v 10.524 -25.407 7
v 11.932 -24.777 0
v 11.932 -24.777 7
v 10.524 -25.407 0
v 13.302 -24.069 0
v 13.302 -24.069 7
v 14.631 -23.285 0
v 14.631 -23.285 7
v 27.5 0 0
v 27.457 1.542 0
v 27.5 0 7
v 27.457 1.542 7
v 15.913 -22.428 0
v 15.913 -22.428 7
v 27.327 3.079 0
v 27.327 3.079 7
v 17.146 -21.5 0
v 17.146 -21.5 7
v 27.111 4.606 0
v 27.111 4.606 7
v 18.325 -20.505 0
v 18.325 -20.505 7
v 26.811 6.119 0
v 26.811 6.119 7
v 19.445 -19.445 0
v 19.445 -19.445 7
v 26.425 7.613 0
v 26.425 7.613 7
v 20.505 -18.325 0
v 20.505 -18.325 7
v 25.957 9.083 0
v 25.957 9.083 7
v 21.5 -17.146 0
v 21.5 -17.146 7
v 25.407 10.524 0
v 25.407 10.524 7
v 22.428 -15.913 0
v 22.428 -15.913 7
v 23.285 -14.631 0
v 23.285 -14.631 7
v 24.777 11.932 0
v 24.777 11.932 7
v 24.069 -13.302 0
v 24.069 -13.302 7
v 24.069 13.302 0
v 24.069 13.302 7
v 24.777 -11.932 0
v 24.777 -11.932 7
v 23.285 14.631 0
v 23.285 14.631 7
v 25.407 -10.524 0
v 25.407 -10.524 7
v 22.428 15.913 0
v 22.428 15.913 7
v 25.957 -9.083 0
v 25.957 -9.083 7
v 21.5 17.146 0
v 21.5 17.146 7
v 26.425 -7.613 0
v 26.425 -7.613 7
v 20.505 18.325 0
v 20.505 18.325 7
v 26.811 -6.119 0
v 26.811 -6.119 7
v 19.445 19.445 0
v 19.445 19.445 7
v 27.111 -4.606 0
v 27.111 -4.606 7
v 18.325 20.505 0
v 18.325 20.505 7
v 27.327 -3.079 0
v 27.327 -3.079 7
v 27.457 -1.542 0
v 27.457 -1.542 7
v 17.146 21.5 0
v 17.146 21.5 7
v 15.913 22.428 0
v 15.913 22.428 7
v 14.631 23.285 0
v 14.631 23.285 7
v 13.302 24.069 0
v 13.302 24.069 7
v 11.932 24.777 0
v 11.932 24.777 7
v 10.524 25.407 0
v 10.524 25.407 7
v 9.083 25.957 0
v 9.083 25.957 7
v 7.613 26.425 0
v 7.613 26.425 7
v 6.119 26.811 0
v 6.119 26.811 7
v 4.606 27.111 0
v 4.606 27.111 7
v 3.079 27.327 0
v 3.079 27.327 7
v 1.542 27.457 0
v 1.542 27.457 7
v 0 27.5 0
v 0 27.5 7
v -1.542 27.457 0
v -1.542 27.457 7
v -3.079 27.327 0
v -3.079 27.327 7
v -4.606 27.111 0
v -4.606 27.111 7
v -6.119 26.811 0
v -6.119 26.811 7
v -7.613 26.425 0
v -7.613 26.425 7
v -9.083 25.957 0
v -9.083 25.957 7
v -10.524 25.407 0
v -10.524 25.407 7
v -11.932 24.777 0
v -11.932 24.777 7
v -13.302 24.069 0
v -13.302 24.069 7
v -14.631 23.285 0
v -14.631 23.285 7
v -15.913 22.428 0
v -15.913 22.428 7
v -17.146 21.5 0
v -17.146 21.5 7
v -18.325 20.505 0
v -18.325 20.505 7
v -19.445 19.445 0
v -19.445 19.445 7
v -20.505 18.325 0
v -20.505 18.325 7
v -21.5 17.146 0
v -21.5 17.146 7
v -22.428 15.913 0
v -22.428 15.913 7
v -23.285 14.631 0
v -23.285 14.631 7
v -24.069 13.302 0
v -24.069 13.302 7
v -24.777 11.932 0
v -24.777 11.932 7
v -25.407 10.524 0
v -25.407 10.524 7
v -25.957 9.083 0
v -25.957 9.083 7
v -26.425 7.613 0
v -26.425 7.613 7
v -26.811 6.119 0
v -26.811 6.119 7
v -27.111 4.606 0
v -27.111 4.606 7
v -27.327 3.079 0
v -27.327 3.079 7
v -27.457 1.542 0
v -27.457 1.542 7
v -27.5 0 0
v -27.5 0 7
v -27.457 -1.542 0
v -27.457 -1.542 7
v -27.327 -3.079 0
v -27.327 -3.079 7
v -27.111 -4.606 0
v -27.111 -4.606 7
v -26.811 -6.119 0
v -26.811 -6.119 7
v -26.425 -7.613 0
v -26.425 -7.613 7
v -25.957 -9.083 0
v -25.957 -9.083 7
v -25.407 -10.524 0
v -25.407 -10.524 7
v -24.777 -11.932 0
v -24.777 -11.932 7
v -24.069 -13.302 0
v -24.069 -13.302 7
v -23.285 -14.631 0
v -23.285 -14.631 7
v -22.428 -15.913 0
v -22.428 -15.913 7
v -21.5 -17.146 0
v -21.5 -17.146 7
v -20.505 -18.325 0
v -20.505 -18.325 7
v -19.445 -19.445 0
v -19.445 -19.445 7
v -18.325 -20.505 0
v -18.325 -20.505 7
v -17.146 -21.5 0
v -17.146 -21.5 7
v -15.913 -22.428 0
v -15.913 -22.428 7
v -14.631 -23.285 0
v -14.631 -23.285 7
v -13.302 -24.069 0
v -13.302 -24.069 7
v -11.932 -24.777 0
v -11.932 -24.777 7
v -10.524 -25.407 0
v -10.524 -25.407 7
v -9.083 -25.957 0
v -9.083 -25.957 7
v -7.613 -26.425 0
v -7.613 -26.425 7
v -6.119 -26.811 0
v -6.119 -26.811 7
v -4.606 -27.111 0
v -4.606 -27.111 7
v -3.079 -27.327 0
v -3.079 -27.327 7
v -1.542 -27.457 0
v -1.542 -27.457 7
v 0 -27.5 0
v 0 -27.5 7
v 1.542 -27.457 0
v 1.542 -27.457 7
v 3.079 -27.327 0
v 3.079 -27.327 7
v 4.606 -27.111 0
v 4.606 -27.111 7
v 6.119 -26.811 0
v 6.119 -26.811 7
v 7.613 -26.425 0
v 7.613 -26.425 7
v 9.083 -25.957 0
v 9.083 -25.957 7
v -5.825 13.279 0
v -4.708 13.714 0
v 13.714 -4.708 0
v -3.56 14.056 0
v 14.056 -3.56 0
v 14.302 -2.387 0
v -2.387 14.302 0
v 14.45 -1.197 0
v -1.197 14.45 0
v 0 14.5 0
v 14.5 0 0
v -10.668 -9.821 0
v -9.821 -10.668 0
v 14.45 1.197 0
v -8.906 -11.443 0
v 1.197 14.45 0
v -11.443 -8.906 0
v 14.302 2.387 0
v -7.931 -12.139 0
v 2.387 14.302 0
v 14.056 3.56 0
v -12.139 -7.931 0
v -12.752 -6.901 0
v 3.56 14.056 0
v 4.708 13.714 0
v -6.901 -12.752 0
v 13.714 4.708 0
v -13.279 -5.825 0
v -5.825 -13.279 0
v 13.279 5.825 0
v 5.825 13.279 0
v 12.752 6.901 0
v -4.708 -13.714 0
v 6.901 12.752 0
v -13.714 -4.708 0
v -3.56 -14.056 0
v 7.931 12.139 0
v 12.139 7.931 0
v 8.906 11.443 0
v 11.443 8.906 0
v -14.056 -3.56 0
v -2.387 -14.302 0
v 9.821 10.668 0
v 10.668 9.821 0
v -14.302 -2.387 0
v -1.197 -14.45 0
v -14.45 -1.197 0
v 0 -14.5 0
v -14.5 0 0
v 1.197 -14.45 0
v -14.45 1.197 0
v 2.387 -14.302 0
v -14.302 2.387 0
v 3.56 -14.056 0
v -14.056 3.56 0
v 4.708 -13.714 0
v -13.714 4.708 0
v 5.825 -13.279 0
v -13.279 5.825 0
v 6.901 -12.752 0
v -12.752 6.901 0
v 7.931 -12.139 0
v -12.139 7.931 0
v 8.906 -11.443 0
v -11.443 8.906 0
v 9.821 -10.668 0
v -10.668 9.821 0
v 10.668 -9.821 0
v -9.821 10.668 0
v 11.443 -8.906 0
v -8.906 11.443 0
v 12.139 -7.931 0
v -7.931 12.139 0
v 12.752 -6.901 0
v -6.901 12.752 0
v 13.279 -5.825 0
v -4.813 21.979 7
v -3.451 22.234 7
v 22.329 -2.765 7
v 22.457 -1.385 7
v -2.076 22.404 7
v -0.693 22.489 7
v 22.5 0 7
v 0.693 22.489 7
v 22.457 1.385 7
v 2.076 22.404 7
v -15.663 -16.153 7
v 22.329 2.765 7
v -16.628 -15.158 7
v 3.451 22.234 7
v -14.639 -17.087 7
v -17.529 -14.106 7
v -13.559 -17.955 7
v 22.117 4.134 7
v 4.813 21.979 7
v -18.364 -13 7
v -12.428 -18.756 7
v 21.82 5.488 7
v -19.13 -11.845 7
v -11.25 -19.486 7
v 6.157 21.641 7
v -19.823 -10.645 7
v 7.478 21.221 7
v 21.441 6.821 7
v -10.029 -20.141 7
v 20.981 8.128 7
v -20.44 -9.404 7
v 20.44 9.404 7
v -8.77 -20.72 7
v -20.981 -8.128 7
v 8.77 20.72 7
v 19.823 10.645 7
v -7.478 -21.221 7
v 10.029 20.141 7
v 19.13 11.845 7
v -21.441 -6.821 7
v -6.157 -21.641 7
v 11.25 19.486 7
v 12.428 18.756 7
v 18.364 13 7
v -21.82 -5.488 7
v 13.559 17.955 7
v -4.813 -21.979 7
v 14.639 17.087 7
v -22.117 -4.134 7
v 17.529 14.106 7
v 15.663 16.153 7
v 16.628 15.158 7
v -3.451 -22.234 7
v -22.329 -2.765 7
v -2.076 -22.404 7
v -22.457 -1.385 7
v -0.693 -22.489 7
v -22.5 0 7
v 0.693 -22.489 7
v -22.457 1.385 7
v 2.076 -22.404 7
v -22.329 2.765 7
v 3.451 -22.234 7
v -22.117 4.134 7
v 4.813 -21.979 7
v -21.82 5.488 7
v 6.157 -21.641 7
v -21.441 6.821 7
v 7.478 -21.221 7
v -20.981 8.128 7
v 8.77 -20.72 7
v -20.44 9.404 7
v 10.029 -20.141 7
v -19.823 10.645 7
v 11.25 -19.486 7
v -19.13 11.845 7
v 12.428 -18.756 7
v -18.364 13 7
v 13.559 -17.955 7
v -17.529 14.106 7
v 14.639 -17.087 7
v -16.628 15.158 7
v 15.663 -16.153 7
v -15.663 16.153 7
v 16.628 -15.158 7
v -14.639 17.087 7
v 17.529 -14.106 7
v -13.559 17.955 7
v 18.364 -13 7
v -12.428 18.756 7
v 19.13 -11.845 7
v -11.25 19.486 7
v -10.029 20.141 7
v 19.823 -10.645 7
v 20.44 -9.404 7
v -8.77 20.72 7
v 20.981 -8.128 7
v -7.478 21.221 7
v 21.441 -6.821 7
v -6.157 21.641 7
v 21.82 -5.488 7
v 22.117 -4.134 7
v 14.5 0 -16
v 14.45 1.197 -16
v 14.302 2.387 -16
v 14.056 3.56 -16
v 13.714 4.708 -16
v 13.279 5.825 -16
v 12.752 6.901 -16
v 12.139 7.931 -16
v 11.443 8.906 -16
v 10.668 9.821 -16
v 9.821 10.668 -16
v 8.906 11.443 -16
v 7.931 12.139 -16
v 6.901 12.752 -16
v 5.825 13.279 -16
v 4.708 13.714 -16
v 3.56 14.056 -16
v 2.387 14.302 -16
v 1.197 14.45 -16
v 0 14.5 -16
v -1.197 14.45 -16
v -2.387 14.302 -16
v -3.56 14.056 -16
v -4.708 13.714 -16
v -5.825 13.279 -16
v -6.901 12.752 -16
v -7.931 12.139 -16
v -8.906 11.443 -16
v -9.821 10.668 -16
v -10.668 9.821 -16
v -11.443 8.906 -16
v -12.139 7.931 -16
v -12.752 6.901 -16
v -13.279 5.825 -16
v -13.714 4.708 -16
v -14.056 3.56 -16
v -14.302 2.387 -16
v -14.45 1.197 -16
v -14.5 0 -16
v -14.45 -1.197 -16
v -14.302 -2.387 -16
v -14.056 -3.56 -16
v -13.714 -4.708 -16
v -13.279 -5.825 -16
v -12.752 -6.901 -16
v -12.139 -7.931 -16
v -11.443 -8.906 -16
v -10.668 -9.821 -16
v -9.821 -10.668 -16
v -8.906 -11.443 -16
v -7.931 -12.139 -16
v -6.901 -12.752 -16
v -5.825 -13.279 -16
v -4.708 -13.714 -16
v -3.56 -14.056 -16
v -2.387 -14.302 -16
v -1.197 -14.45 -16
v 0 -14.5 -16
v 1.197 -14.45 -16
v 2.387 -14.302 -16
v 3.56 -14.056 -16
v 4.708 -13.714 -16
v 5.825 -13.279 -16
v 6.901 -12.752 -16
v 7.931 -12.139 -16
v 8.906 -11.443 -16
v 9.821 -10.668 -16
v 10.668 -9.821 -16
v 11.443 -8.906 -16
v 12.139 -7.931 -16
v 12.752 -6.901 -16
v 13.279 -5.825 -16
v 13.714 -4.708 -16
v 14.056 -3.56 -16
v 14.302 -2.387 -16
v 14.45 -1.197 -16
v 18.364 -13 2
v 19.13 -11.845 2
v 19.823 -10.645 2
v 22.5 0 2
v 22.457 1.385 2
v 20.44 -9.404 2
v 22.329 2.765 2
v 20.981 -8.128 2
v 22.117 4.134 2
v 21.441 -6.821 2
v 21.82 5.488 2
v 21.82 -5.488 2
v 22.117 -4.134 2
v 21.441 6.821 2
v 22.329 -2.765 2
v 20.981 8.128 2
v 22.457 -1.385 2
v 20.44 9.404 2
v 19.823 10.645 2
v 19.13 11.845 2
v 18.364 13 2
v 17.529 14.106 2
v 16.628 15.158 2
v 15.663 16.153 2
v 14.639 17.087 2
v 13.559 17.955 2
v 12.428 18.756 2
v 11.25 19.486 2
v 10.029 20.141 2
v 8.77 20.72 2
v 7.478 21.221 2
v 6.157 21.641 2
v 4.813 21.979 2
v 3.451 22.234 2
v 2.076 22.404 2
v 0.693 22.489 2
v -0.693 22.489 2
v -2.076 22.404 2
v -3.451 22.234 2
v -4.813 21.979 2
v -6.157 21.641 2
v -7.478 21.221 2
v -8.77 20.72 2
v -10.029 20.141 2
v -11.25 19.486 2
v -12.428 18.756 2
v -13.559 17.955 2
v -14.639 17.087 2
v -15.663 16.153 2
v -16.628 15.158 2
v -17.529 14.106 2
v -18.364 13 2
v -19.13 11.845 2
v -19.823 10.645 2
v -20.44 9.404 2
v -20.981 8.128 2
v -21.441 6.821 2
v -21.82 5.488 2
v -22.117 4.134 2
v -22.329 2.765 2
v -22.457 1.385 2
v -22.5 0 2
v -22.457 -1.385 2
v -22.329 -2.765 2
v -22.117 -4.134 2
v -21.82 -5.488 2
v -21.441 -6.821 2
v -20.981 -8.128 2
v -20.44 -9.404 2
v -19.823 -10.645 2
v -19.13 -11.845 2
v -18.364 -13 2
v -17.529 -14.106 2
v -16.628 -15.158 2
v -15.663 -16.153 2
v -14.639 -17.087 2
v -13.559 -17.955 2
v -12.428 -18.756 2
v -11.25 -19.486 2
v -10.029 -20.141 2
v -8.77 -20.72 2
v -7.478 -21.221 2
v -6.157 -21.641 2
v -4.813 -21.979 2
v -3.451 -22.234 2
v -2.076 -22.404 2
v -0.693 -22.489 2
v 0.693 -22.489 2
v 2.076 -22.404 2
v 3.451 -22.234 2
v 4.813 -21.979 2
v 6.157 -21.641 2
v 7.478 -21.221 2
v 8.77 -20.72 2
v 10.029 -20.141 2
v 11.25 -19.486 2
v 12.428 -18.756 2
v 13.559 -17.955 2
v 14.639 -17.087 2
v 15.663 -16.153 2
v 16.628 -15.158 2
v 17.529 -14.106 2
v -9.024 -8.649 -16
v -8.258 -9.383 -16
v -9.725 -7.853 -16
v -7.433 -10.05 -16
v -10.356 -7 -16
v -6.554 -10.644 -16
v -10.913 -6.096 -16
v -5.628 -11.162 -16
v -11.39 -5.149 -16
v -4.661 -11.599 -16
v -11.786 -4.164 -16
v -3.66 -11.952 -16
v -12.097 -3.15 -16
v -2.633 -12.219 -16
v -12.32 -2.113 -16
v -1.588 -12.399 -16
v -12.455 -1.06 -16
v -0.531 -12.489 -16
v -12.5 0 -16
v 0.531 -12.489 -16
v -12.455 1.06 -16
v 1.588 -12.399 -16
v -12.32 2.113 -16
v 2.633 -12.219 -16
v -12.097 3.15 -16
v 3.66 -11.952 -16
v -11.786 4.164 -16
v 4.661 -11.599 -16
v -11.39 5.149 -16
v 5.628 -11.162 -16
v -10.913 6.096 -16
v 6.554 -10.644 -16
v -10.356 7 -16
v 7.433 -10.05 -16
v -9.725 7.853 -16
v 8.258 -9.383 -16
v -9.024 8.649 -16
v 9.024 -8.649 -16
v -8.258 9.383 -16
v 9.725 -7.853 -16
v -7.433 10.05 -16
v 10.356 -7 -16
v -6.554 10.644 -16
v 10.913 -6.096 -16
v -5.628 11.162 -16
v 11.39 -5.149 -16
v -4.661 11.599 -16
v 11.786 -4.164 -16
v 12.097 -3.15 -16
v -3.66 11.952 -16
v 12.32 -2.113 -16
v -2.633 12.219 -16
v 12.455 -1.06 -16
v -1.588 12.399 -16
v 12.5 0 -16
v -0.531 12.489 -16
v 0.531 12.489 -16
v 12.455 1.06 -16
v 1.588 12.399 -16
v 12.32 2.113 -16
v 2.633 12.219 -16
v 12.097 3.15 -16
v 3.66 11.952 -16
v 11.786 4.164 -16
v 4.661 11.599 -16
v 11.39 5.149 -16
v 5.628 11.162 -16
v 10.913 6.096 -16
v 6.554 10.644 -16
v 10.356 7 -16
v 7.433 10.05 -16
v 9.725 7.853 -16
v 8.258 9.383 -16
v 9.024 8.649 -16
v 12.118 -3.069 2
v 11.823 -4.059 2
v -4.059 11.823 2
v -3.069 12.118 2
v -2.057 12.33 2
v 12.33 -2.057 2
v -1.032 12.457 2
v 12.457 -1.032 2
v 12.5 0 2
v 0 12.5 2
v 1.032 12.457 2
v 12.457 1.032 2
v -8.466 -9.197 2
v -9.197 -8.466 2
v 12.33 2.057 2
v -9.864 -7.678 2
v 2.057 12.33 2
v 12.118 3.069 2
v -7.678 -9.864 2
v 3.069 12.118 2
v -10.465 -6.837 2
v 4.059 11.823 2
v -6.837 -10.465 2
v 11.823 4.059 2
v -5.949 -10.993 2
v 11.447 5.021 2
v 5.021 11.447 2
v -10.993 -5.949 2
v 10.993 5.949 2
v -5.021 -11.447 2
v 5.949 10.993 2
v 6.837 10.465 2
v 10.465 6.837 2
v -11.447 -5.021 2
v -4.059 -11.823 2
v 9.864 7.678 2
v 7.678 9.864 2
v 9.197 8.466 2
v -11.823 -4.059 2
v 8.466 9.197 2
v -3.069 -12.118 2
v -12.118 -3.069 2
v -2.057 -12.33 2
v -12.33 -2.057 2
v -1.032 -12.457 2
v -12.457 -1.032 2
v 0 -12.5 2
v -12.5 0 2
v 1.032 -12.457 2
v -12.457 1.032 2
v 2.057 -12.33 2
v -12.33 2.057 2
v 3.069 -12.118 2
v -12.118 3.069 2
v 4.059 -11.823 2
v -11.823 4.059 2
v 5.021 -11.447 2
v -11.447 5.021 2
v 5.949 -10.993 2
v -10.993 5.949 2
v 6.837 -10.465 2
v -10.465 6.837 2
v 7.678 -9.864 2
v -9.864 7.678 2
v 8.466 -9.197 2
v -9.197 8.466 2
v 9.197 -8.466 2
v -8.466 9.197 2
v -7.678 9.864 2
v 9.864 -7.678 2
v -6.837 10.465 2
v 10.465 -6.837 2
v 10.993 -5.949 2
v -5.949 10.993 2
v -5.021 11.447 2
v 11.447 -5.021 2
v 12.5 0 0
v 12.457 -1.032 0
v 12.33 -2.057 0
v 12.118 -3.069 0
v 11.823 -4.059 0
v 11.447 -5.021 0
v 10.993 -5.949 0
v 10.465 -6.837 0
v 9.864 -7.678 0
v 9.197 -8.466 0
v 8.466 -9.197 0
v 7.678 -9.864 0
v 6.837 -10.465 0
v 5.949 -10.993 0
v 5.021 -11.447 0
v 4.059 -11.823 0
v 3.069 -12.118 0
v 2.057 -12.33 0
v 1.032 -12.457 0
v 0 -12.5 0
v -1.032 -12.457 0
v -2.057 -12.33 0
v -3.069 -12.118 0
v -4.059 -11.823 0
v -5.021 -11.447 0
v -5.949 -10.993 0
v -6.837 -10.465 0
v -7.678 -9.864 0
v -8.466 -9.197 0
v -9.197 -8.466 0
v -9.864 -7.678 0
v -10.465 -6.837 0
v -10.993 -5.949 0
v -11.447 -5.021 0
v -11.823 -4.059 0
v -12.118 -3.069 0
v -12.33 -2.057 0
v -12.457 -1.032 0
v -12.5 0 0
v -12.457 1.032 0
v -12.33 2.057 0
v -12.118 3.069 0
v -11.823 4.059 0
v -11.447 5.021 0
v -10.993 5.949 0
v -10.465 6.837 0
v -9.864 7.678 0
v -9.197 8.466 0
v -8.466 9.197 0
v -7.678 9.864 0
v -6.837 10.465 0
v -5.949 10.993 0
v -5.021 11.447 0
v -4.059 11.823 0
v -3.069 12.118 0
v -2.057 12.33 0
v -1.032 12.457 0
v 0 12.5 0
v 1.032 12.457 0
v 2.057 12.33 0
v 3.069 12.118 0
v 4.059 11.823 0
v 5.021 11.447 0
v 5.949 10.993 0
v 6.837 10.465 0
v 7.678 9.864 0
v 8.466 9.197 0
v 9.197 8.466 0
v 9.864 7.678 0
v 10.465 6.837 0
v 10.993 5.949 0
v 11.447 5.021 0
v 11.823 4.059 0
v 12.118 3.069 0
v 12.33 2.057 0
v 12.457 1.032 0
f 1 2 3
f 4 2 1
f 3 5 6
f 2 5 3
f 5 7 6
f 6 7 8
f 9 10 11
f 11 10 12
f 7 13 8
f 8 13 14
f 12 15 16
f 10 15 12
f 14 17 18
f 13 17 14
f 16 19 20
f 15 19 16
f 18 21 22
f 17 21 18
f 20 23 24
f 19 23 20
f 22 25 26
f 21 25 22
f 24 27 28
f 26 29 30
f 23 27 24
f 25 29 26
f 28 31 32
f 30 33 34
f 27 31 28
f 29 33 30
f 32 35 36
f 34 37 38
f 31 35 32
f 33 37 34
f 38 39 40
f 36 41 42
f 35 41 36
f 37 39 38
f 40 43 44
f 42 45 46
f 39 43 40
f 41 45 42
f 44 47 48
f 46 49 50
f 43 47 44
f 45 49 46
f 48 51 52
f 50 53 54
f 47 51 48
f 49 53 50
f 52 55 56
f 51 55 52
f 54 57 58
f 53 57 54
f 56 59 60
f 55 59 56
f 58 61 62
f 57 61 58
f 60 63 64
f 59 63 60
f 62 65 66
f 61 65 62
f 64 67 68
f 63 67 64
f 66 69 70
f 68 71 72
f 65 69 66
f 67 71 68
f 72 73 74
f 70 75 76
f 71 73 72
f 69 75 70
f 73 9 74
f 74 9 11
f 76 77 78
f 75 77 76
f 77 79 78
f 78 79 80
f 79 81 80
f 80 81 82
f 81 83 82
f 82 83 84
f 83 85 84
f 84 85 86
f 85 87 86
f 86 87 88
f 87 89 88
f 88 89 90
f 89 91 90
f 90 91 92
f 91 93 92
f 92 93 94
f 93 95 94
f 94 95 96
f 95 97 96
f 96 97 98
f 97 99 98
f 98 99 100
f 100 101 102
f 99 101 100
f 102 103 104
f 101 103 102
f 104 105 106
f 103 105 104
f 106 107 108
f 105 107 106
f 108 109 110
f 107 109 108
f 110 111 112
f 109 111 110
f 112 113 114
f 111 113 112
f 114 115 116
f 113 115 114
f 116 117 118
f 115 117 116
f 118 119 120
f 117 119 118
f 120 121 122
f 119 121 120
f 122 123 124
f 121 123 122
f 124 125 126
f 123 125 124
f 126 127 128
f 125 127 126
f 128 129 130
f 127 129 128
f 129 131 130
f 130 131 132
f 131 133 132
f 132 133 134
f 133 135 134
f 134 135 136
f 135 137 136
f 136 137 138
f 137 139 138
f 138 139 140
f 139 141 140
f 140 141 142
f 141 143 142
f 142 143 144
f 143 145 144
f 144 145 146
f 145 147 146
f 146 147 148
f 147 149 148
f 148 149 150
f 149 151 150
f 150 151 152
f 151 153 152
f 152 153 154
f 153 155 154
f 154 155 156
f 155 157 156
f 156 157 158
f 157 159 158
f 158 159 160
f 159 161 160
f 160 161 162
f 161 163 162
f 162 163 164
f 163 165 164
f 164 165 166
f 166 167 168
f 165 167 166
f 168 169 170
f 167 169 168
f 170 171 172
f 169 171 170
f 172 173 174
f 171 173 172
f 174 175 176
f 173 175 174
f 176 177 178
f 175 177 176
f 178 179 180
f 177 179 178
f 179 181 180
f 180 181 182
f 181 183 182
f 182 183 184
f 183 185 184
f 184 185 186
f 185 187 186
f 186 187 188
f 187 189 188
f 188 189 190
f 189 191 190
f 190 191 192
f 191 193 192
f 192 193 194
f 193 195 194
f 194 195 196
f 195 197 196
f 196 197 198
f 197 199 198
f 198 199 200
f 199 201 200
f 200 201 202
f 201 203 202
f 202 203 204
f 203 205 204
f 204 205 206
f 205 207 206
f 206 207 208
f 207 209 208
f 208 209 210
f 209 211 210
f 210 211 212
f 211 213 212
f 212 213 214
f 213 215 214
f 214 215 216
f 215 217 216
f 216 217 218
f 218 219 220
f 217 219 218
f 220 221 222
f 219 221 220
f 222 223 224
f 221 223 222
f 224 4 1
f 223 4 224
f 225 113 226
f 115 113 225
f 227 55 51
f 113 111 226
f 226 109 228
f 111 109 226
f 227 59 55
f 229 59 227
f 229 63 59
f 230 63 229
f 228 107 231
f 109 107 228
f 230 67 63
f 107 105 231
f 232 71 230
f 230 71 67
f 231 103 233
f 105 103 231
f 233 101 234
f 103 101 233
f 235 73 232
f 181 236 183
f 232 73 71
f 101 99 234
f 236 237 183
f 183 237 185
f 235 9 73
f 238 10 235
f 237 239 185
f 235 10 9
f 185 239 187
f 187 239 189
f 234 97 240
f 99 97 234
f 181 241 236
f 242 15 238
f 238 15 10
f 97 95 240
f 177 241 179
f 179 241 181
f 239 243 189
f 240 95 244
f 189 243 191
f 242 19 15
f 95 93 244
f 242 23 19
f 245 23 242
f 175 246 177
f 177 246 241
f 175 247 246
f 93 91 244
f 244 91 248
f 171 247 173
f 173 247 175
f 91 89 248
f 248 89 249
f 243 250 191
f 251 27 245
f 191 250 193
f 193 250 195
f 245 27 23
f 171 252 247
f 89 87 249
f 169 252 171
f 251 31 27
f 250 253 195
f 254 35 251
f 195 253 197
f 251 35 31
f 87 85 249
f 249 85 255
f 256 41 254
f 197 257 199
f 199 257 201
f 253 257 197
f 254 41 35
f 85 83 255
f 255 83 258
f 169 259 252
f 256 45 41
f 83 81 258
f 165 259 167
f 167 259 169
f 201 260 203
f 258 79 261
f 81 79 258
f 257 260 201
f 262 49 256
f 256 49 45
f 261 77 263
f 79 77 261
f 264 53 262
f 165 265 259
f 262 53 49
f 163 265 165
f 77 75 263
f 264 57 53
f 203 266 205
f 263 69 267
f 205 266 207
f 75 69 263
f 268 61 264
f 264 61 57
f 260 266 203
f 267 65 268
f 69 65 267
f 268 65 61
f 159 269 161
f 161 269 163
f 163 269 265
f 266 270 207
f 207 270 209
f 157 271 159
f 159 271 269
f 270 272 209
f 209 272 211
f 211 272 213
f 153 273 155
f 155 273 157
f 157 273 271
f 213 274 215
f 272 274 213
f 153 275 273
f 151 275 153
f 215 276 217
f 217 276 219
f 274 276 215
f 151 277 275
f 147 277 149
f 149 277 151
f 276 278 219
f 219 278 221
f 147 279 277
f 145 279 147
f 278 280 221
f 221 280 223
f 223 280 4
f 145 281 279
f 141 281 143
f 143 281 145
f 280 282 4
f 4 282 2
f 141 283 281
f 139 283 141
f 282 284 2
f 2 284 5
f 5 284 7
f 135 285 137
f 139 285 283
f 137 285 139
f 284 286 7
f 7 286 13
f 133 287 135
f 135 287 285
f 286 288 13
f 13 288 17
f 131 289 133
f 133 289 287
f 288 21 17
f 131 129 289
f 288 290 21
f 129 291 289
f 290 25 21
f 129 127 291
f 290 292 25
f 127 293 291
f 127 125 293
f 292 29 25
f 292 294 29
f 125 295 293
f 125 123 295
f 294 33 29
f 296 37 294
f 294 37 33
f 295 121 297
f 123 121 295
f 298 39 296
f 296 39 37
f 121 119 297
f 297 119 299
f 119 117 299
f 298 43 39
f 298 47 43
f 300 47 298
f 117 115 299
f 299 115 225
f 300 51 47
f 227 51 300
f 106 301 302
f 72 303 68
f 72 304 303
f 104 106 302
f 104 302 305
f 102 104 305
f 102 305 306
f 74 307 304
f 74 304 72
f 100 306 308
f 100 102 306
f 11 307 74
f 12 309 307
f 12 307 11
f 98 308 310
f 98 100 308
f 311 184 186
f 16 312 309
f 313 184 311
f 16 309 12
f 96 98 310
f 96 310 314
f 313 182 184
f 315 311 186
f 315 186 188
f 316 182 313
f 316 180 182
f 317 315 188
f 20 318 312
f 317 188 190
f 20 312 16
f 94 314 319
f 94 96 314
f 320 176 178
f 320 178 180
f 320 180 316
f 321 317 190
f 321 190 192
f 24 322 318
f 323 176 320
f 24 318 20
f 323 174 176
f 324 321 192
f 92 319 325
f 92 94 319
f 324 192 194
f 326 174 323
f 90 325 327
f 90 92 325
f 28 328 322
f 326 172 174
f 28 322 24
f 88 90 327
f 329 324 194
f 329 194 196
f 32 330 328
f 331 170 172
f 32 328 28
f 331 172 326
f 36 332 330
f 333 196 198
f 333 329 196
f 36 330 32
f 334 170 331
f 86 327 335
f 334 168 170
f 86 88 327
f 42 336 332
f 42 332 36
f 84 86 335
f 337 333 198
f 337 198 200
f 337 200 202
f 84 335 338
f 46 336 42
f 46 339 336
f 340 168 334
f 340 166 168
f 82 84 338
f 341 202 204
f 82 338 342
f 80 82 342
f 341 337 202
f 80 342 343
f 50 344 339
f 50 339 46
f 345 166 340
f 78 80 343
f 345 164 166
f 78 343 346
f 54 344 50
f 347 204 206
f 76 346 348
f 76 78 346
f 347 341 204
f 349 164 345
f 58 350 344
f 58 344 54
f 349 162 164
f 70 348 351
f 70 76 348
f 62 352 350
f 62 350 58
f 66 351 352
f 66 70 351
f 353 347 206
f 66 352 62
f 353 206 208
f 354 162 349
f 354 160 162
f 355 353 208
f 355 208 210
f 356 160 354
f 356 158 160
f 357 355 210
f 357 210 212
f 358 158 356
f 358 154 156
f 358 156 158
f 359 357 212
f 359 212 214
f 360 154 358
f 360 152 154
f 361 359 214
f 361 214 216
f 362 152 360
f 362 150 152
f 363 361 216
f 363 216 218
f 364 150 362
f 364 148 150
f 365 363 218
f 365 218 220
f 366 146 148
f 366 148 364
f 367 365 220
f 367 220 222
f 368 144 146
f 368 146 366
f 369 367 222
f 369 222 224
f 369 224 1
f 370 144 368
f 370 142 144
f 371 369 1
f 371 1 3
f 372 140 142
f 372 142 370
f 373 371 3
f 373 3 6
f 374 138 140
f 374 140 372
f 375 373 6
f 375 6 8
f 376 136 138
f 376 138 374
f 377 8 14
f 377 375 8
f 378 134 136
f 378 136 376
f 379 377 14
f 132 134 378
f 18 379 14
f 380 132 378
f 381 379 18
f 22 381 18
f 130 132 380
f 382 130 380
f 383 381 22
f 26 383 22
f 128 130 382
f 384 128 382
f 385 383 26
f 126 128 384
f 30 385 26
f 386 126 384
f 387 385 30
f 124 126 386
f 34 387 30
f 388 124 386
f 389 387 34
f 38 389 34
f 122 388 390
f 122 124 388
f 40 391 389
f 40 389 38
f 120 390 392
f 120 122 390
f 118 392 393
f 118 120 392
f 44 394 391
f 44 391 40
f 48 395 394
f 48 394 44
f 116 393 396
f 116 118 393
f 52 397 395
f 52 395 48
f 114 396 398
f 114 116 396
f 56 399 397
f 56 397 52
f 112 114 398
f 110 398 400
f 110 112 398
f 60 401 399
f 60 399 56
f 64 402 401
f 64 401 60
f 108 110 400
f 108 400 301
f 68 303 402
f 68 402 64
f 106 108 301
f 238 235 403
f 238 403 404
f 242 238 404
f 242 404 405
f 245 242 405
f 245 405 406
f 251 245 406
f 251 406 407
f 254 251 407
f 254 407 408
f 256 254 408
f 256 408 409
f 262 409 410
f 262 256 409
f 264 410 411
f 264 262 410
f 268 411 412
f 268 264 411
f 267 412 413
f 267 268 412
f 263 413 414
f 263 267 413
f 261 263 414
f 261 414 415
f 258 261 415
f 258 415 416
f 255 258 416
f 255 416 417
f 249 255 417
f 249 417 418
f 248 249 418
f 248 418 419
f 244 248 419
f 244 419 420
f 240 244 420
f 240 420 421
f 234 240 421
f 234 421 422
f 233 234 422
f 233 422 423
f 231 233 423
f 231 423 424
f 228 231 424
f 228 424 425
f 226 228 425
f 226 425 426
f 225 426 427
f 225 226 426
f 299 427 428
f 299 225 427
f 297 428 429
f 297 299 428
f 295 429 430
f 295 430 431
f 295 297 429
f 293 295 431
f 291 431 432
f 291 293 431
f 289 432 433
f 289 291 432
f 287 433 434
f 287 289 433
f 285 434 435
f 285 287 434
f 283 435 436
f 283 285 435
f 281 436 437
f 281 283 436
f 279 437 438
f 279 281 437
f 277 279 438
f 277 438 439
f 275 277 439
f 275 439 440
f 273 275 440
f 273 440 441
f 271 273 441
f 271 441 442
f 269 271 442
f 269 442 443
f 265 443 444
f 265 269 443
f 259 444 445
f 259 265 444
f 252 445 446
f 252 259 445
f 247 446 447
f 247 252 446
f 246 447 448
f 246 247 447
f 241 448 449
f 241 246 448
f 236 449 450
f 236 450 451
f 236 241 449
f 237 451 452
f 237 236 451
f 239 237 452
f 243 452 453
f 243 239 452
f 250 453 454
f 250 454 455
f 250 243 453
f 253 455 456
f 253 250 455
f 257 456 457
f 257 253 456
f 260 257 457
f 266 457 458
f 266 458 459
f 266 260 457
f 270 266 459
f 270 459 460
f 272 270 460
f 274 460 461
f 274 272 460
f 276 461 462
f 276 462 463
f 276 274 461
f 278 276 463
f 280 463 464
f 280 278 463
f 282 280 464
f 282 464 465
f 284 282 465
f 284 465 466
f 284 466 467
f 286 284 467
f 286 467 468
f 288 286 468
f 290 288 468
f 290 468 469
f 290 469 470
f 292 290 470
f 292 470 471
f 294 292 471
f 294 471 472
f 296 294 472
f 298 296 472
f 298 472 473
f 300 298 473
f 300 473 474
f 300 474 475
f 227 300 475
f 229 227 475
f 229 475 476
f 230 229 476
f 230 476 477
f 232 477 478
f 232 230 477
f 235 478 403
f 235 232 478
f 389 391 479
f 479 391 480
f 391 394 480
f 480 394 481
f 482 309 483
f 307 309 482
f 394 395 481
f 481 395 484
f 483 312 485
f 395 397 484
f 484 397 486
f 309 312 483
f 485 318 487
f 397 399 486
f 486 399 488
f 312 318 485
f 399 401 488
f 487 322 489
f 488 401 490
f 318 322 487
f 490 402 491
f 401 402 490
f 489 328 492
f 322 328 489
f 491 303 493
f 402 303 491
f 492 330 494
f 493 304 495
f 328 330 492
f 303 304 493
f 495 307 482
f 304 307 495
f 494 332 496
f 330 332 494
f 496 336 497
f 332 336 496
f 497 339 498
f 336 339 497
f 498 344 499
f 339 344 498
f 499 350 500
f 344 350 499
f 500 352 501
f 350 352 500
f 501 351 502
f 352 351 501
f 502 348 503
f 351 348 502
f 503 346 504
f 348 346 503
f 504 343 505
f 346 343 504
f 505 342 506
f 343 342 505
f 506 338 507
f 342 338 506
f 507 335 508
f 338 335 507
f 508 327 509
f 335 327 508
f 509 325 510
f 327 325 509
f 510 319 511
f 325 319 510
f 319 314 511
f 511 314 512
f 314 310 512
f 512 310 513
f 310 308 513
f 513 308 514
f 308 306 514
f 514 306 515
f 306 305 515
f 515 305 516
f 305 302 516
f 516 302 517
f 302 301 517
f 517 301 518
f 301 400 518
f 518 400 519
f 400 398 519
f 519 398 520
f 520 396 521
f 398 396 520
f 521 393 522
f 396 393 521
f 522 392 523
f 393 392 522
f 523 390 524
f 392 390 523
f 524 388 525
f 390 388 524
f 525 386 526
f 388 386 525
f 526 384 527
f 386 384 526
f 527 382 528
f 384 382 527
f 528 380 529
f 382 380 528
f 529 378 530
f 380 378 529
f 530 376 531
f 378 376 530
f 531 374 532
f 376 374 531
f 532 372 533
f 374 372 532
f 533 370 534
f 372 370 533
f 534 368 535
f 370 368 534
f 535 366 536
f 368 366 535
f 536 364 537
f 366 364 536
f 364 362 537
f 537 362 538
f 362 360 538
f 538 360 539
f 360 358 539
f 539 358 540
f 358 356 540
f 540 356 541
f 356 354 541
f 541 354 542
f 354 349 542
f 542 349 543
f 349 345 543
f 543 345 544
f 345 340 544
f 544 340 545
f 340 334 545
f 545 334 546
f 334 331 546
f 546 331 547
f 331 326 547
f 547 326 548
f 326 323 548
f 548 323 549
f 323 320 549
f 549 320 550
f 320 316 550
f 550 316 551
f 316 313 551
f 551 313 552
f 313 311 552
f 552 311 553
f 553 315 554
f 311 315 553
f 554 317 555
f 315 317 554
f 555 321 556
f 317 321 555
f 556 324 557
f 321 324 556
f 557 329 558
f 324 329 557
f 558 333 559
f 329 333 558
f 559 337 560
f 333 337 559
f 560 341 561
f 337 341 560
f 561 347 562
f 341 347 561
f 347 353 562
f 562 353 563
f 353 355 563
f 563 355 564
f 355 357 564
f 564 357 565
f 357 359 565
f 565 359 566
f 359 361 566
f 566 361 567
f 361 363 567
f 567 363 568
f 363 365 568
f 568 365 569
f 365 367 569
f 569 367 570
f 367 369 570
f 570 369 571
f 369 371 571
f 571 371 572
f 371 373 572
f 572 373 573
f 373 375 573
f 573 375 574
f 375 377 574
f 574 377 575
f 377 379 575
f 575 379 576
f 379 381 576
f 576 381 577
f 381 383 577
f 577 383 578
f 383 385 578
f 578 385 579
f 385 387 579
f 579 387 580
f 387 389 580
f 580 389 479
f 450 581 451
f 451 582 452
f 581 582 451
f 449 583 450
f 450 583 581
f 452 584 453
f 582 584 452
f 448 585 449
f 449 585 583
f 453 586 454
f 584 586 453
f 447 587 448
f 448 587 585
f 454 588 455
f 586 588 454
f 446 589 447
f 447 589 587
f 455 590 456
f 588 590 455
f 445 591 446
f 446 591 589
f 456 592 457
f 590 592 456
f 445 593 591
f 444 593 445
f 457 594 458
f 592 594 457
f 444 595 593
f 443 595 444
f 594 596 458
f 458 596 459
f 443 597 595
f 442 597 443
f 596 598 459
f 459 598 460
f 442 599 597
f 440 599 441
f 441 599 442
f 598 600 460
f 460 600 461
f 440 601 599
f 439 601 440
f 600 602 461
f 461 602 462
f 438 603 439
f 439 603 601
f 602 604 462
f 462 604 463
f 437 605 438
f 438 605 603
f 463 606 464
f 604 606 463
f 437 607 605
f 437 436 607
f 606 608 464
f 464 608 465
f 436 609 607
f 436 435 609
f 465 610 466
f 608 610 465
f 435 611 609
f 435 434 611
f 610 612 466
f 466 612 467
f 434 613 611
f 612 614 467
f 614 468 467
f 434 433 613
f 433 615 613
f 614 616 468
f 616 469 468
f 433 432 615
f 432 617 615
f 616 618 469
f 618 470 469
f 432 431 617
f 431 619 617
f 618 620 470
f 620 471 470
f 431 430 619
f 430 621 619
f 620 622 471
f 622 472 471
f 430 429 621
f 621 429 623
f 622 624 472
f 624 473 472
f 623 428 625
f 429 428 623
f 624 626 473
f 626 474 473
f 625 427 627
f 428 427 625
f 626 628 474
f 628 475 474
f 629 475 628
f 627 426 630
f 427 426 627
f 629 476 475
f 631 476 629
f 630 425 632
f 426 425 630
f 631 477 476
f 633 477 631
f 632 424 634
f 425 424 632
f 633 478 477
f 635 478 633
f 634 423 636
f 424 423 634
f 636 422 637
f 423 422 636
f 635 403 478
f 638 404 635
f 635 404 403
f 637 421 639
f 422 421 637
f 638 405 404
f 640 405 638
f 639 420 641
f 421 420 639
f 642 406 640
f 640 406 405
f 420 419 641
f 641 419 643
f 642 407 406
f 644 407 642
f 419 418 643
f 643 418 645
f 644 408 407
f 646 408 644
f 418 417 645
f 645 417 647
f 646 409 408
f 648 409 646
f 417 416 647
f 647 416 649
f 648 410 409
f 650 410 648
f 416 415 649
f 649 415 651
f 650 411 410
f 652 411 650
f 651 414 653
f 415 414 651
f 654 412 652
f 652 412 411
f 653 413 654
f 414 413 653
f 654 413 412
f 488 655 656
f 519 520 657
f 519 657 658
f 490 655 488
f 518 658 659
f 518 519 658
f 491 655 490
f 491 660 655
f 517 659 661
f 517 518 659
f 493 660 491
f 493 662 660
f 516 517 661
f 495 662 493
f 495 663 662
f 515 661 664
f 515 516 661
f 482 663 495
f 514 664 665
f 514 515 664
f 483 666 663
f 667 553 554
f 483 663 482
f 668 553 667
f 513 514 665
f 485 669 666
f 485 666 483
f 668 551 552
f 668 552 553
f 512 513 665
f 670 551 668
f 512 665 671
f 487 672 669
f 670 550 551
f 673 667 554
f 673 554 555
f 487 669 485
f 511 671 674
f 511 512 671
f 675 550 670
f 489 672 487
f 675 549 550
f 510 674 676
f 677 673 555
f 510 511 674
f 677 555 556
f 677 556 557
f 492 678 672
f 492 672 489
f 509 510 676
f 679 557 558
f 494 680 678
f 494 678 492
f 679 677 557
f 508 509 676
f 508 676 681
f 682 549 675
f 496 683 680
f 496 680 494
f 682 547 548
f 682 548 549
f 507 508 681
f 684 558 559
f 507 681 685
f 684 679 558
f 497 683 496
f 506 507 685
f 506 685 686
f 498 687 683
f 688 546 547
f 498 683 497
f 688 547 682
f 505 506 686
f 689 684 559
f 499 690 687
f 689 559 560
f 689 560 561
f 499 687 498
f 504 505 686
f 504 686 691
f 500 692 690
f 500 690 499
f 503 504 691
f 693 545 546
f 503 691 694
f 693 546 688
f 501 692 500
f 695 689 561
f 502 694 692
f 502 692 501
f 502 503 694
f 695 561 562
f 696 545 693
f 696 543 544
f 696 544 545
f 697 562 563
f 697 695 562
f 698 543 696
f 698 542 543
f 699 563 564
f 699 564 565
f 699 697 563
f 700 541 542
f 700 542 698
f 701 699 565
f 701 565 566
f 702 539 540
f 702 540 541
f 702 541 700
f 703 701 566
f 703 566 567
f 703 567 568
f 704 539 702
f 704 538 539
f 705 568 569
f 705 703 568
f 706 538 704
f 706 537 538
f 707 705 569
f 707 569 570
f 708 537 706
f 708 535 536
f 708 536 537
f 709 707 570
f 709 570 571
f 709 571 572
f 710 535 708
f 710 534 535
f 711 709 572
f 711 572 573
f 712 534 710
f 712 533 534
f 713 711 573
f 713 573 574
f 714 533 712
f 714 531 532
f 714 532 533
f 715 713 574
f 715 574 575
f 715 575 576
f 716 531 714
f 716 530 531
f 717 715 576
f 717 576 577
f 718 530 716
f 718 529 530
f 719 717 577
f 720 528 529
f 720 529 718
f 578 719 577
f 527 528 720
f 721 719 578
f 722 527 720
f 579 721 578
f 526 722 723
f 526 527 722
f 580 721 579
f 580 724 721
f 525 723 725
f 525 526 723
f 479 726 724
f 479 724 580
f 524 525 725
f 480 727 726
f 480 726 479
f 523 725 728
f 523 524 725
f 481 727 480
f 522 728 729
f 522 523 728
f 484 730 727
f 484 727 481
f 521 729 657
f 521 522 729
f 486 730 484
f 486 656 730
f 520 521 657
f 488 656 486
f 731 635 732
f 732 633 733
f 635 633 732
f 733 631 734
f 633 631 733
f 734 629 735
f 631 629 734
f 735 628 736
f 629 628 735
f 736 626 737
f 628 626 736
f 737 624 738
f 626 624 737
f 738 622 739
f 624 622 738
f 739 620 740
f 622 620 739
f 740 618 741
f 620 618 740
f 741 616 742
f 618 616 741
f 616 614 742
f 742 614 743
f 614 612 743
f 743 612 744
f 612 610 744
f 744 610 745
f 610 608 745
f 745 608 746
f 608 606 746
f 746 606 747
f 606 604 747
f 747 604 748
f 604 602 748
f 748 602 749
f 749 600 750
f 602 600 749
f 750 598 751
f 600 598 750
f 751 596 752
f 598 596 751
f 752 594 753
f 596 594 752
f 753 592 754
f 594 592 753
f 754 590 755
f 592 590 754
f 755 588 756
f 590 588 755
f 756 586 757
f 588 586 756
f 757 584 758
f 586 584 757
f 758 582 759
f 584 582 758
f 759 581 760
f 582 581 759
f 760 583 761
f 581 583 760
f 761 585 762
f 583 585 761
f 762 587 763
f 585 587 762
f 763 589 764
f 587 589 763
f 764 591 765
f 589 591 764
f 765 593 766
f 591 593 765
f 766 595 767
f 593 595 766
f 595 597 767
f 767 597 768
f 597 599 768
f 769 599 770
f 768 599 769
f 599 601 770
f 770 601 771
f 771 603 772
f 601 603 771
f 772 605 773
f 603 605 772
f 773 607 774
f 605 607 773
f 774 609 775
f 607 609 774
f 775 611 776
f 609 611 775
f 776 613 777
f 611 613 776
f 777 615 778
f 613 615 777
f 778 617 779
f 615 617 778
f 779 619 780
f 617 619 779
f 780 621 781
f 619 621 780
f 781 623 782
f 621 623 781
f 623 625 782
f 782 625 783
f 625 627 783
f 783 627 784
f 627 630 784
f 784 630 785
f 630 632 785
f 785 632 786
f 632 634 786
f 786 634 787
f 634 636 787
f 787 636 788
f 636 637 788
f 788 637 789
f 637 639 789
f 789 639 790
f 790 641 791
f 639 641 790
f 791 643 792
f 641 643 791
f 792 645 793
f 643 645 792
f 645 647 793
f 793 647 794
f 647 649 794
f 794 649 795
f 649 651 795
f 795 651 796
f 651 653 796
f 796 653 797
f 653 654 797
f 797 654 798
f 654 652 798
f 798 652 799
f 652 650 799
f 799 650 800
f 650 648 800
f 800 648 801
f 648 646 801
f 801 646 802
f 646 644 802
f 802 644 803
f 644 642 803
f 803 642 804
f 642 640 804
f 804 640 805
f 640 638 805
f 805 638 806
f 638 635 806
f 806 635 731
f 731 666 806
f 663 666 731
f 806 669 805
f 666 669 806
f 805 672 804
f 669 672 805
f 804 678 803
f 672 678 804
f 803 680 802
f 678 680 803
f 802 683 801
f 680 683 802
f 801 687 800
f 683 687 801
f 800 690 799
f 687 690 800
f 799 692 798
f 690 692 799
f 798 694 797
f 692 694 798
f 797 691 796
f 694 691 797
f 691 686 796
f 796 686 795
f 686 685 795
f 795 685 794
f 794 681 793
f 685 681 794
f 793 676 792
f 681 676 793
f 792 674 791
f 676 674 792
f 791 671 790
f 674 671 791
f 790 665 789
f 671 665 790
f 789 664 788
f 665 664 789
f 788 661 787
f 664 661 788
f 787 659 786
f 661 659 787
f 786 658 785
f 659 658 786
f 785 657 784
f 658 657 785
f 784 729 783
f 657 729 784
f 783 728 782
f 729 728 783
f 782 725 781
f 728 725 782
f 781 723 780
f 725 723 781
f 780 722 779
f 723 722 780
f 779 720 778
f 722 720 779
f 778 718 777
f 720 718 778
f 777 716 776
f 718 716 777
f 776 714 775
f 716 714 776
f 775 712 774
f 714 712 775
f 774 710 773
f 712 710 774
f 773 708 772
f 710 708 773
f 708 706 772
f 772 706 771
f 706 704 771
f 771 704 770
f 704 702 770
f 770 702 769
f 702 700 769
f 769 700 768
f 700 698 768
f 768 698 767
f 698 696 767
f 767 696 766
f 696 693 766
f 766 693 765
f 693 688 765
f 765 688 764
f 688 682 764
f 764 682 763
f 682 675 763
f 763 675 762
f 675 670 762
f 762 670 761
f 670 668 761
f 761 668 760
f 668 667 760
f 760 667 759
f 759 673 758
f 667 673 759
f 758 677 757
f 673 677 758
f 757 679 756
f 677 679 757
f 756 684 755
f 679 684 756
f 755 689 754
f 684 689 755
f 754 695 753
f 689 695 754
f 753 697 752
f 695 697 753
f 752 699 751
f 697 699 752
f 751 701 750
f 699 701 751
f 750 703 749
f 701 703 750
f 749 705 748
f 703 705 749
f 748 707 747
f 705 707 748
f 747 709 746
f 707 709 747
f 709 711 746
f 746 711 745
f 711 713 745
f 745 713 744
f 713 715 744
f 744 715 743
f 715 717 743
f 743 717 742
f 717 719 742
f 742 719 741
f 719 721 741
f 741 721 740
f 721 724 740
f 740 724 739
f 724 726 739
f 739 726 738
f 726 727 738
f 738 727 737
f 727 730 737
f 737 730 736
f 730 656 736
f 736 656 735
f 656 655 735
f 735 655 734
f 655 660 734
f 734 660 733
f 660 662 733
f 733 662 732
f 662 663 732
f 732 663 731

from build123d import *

# Parameters (mm, degrees)
SKETCH_R        = 27.5
PAD_DEPTH       = 7
SKETCH001_R     = 12.5
POCKET_DEPTH    = 7.001
SKETCH002_R     = 22.5
POCKET001_DEPTH = 5
SKETCH003_R     = 14.5
PAD001_DEPTH    = 16
SKETCH004_R     = 12.5
POCKET002_DEPTH = 23.001


with BuildPart() as part:
    # Sketch → Pad (new body)
    with BuildSketch(Plane.XY):
        Circle(SKETCH_R)
    extrude(amount=PAD_DEPTH)

    # Sketch001 (on Face3 of Pad) → Pocket (cut, through all)
    with BuildSketch(Plane.XY.offset(7)):
        Circle(SKETCH001_R)
    extrude(amount=-POCKET_DEPTH, mode=Mode.SUBTRACT)

    # Sketch002 (on Face3 of Pocket) → Pocket001 (cut)
    with BuildSketch(Plane.XY.offset(7)):
        Circle(SKETCH002_R)
    extrude(amount=-POCKET001_DEPTH, mode=Mode.SUBTRACT)

    # Sketch003 → Pad001 (join)
    with BuildSketch(Plane.XY):
        Circle(SKETCH003_R)
    extrude(amount=-PAD001_DEPTH)

    # Sketch004 (on Face6 of Pad001) → Pocket002 (cut, through all)
    with BuildSketch(Plane(origin=(0, 0, -16), x_dir=(1, 0, 0), z_dir=(0, 0, -1))):
        Circle(SKETCH004_R)
    extrude(amount=-POCKET002_DEPTH, mode=Mode.SUBTRACT)


solid = part.part
